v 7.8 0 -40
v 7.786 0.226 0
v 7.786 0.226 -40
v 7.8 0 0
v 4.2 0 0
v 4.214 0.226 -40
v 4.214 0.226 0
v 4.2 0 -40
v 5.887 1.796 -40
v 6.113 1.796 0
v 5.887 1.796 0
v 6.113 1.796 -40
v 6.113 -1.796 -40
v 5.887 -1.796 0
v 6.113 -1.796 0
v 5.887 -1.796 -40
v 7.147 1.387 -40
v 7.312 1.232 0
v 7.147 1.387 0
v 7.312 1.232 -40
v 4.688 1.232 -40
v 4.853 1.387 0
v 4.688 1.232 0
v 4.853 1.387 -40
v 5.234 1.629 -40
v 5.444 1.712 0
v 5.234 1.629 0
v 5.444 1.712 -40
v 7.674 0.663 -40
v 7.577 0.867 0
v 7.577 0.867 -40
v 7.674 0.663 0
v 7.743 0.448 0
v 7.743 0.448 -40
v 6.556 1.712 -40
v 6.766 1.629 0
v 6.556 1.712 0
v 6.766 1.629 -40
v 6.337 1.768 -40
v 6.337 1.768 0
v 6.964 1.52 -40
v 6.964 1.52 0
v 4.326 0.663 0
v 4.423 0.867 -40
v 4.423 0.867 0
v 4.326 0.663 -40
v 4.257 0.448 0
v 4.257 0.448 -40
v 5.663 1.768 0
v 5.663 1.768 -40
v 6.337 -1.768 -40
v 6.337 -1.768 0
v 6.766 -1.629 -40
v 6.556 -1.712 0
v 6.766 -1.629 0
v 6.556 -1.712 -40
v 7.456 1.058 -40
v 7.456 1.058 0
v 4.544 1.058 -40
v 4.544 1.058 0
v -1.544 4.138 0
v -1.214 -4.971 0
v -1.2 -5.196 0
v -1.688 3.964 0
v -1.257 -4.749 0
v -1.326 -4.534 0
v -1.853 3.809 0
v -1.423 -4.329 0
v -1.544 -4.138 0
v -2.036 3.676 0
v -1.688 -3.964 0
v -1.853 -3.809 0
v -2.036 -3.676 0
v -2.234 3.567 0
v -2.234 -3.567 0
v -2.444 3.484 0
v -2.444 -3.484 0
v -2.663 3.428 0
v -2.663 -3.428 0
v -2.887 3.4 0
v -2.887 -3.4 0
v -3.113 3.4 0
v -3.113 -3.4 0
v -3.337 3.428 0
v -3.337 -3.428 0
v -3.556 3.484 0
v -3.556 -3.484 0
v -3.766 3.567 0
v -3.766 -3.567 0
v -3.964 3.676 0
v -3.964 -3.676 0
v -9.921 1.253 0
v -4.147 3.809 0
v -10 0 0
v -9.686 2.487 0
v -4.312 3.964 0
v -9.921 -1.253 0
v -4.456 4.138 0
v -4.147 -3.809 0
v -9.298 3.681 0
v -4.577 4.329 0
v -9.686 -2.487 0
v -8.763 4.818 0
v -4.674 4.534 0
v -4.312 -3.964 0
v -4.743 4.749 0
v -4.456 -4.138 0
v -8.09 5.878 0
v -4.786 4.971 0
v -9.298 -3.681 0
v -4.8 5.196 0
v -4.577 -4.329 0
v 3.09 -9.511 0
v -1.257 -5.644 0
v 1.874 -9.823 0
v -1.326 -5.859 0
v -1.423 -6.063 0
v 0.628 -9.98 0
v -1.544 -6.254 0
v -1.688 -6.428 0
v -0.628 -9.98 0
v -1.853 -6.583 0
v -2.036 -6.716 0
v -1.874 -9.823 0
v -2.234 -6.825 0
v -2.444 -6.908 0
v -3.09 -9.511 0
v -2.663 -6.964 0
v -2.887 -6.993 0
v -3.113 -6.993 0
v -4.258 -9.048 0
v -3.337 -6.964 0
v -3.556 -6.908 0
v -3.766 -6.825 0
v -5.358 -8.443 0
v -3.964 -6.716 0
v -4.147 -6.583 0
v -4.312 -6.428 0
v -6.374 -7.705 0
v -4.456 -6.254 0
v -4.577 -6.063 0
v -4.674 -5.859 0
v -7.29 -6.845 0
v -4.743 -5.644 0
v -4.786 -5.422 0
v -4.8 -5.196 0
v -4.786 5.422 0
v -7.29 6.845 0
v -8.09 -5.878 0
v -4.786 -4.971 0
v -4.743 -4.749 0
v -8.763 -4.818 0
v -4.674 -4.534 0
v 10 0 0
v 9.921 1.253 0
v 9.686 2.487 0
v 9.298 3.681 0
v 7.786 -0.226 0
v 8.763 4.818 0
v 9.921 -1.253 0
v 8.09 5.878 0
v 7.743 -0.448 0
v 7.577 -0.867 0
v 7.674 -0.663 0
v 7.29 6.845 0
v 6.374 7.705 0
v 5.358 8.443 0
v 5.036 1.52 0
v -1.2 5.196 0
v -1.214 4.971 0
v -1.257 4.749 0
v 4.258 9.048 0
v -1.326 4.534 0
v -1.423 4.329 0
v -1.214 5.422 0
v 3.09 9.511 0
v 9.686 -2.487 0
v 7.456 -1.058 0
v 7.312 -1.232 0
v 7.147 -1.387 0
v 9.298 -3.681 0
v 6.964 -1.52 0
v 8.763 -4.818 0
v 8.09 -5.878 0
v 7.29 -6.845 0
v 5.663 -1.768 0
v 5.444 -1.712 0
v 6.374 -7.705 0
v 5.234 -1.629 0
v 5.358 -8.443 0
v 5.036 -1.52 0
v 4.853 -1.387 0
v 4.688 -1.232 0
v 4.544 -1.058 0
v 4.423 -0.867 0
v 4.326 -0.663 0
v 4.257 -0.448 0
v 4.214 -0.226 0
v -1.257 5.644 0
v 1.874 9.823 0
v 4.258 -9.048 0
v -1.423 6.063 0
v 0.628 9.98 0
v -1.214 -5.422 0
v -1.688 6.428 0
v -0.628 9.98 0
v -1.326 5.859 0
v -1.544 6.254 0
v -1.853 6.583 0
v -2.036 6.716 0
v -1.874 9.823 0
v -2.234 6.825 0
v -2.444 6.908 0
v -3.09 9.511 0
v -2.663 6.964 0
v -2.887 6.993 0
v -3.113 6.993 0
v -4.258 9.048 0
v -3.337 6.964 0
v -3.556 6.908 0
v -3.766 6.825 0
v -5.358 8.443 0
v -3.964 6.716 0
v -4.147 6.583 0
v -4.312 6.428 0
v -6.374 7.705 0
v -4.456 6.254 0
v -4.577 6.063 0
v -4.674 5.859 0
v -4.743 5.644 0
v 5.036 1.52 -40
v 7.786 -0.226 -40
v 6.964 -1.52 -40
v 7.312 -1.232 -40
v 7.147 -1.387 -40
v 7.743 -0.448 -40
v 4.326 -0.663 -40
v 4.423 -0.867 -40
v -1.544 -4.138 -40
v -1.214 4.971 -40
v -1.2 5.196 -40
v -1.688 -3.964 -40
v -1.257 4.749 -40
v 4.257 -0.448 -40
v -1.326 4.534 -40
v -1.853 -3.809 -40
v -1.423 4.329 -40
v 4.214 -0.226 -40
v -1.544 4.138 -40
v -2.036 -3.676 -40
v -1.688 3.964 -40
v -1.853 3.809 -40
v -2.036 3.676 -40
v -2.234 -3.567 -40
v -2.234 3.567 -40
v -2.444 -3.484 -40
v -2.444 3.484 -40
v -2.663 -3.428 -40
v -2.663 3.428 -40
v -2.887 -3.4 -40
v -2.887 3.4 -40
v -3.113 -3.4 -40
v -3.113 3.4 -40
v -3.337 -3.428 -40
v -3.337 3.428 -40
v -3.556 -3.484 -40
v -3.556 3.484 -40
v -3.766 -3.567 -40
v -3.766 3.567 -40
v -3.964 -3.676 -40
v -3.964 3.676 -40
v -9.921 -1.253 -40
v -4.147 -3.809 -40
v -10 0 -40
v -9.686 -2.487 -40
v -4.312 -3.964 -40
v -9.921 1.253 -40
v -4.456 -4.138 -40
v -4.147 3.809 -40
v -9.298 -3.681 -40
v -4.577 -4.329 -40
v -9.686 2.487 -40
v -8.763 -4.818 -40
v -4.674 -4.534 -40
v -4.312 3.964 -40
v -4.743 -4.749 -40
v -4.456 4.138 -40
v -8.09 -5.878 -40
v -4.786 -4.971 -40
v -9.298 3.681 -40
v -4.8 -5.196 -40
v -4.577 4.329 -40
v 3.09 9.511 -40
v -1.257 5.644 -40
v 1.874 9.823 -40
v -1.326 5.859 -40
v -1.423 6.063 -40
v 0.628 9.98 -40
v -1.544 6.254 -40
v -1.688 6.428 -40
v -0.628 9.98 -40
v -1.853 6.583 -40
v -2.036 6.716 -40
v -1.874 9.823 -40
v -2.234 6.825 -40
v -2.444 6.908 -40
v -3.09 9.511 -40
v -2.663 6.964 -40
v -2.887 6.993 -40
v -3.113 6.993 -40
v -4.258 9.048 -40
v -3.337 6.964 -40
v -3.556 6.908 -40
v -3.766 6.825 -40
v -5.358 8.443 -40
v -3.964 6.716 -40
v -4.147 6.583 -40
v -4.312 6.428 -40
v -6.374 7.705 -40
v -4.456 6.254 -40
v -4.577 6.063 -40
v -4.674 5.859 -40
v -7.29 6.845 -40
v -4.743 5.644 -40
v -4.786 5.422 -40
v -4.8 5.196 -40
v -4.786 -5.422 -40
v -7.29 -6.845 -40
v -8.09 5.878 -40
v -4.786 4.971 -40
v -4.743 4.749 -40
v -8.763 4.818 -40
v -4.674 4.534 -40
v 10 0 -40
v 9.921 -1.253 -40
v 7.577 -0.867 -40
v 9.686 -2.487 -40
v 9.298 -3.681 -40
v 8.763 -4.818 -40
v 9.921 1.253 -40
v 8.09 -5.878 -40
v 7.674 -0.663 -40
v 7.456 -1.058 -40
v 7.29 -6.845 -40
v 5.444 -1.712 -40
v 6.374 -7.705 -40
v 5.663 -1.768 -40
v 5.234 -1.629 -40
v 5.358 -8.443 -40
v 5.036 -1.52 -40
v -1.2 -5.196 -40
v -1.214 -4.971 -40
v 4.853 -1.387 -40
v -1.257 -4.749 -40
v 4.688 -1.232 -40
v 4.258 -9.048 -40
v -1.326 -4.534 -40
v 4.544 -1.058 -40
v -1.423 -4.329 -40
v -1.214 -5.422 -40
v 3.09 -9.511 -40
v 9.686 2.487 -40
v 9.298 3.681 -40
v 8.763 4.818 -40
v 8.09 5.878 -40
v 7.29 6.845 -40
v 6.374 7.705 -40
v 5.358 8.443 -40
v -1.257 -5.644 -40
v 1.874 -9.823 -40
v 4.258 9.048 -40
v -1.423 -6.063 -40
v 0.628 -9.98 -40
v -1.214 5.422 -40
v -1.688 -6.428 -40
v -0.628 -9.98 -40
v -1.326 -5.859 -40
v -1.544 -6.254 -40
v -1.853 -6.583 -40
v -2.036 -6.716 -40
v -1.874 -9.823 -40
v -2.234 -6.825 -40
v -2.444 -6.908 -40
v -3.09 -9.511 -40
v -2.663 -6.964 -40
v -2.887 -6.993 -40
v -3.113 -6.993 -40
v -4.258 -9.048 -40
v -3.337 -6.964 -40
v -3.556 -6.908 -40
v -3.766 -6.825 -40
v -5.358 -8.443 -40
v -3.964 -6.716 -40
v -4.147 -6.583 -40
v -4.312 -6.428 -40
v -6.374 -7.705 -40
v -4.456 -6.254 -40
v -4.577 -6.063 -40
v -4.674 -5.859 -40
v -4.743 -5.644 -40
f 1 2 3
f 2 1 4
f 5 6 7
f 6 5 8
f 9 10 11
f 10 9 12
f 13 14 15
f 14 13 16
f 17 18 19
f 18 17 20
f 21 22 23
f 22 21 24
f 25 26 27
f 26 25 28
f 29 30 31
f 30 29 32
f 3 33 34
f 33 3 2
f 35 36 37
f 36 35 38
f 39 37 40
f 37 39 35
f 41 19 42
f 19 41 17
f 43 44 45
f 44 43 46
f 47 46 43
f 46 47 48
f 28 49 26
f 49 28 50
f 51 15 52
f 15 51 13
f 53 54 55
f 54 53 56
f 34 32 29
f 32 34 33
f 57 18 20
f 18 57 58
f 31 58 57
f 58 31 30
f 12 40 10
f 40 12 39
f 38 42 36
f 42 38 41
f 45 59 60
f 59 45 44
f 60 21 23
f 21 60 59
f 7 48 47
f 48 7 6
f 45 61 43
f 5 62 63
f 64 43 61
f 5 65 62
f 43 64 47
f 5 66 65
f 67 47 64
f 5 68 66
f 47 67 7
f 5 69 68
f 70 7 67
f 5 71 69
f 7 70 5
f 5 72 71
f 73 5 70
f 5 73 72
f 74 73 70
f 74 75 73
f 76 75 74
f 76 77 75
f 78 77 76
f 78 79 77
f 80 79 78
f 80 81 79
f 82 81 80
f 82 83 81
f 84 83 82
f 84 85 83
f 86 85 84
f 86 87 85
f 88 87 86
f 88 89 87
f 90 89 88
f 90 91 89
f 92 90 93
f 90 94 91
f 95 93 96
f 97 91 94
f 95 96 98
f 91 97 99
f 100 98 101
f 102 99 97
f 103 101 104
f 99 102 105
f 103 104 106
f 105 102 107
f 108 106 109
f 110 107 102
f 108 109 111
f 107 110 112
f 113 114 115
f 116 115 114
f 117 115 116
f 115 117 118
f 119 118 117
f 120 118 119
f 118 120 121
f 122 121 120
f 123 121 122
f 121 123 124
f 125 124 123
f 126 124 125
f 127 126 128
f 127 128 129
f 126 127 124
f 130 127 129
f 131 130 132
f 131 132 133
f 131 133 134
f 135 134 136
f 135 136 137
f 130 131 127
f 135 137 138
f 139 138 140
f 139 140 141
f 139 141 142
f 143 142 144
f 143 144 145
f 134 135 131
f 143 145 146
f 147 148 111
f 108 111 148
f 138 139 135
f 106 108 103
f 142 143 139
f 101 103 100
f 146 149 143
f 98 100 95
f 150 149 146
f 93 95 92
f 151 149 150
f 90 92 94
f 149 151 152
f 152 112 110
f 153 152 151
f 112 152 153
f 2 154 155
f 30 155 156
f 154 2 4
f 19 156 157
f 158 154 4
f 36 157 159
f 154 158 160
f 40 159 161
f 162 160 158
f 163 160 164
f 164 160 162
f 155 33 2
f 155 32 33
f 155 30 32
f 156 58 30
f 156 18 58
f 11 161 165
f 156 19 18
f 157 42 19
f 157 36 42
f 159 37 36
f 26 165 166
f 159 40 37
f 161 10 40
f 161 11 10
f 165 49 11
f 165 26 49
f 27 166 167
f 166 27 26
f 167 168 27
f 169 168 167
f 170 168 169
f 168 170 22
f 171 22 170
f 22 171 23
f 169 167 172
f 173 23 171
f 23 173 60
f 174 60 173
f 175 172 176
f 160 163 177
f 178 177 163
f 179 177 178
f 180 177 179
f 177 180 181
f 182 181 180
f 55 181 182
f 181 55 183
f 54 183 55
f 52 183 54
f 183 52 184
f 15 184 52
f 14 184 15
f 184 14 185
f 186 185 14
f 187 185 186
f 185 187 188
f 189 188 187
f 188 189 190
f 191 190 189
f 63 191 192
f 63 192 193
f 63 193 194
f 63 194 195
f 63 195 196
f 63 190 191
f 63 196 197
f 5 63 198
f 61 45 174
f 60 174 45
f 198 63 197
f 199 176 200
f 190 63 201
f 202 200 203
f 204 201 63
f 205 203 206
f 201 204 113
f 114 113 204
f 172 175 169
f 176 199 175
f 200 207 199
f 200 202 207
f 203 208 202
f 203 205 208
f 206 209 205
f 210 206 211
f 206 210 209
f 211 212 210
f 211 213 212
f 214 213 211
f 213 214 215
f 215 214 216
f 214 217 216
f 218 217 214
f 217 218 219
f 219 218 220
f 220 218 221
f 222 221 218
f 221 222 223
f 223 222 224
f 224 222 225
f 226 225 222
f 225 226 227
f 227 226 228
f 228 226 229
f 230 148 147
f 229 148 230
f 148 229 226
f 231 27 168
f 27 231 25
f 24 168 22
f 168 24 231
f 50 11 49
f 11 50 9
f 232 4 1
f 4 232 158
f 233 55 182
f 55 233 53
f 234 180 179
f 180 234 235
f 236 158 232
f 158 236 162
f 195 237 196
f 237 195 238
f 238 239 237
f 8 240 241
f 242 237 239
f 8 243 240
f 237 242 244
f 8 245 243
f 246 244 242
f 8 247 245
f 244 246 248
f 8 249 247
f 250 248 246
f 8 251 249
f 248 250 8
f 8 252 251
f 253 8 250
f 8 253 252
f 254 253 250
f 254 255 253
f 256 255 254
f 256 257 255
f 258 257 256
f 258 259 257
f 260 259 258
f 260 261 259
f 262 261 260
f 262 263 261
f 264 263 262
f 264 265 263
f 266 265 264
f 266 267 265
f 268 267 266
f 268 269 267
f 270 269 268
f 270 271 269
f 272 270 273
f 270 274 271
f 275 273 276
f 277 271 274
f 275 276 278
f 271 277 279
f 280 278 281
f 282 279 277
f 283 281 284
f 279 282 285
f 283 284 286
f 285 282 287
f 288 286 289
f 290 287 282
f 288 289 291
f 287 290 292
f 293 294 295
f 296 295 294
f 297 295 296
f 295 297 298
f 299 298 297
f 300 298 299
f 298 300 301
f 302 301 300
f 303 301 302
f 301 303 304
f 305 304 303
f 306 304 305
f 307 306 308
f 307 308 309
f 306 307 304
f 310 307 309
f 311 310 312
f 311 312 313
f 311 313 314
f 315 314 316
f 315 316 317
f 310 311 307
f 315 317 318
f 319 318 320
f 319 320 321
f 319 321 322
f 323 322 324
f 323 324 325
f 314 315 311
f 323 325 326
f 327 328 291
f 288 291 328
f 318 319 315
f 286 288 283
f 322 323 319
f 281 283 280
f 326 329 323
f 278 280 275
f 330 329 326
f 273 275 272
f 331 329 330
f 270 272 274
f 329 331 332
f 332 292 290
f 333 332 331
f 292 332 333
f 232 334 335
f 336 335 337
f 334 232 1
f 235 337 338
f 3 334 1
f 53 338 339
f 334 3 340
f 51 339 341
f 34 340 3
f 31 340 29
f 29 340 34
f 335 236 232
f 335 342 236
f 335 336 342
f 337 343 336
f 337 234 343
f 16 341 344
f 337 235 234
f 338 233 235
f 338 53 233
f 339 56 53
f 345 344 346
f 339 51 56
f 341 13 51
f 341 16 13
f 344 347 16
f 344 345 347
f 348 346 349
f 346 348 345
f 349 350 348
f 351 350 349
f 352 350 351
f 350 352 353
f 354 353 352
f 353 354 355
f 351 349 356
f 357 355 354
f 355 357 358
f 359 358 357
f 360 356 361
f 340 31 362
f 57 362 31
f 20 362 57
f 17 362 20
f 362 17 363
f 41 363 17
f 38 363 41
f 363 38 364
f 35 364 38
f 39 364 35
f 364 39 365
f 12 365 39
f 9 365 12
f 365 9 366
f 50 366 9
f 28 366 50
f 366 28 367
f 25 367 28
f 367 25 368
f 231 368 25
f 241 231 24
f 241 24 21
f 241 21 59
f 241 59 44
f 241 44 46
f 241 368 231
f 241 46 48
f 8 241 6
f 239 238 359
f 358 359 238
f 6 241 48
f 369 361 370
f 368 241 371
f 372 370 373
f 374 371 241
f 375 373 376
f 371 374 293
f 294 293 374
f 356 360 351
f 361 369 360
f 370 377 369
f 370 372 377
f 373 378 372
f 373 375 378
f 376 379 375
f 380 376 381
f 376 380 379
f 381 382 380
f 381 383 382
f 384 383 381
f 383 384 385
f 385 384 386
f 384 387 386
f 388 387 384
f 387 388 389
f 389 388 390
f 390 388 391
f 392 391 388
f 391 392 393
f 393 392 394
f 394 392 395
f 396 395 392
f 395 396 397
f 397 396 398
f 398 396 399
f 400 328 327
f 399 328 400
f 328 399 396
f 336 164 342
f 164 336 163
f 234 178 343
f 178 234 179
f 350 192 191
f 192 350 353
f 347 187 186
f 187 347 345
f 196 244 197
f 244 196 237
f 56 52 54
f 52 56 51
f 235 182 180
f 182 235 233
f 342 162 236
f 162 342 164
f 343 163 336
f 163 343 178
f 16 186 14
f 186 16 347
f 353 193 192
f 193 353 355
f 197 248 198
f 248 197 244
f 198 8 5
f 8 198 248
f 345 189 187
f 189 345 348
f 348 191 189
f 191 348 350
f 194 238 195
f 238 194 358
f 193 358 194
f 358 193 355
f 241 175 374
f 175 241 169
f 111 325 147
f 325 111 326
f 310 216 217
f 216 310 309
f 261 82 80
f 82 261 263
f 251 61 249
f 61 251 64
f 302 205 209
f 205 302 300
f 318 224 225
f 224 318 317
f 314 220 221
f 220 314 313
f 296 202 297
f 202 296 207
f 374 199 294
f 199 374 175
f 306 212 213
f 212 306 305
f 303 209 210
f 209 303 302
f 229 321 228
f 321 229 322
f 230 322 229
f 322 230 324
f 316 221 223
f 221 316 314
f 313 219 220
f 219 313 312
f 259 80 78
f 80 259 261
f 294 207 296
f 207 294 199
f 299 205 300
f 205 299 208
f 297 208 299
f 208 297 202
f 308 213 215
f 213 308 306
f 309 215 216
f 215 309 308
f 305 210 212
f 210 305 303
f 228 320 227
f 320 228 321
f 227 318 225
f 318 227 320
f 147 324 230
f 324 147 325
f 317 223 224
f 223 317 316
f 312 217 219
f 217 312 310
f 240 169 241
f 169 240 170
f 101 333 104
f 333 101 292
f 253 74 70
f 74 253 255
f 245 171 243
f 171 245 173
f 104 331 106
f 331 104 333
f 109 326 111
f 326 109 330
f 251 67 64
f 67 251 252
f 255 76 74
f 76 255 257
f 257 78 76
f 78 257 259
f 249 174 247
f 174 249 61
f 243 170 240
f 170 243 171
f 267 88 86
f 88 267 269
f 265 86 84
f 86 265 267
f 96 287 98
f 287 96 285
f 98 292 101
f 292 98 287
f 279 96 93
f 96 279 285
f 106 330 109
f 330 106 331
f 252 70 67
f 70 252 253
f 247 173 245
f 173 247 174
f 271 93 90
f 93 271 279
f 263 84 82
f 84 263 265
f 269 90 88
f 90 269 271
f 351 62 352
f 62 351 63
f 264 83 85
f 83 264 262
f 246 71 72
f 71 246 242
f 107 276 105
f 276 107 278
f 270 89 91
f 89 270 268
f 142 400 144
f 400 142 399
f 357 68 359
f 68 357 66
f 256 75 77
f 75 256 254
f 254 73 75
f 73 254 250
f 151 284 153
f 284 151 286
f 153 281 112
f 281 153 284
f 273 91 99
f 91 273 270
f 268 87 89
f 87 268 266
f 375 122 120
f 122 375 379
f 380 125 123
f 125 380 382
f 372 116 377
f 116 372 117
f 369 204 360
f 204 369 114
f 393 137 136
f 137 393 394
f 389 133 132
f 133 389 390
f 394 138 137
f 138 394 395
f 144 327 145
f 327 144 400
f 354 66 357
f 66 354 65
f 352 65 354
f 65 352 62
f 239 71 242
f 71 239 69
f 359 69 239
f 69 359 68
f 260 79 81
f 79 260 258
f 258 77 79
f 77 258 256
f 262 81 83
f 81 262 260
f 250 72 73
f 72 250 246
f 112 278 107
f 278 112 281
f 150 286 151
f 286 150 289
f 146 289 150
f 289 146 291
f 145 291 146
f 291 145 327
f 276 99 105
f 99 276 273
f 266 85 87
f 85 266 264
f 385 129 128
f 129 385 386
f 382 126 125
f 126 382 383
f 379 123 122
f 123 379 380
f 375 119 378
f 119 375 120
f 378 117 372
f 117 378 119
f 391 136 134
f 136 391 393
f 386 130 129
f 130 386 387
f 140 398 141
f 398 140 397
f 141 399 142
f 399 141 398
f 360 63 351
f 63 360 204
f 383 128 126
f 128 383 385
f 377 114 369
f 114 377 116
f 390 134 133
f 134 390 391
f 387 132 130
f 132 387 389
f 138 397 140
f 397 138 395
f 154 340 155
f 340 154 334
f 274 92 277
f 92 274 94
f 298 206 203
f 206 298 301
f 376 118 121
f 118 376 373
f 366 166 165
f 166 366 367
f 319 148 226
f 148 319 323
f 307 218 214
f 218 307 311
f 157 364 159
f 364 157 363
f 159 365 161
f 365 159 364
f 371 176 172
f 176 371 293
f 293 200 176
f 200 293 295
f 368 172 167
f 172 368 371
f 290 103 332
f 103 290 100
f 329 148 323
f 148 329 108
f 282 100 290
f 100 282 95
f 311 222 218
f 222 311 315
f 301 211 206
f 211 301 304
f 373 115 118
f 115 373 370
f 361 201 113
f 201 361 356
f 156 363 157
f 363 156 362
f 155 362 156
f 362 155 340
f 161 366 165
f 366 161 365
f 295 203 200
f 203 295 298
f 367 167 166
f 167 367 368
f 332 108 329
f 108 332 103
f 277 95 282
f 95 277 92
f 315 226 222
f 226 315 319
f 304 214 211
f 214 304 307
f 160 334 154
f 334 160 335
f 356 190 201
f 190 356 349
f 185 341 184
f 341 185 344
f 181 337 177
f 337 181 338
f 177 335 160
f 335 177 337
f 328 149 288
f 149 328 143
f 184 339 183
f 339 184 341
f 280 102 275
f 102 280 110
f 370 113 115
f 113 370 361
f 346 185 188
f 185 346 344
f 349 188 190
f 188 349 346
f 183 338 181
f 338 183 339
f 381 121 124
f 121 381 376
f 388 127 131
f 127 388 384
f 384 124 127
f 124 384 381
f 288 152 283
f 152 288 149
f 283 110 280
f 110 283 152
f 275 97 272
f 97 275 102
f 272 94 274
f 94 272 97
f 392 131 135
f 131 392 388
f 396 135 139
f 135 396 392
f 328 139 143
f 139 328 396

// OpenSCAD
$fn = 50;


difference() {
	union() {
		translate(v = [0, 0, -40.0000000000]) {
			cylinder(h = 40, r = 10.0000000000);
		}
	}
	union() {
		#translate(v = [6.0000000000, 0.0000000000, -40]) {
			cylinder(h = 40, r = 1.8000000000);
		}
		#translate(v = [-3.0000000000, 5.1961524227, -40]) {
			cylinder(h = 40, r = 1.8000000000);
		}
		#translate(v = [-3.0000000000, -5.1961524227, -40]) {
			cylinder(h = 40, r = 1.8000000000);
		}
	}
}
